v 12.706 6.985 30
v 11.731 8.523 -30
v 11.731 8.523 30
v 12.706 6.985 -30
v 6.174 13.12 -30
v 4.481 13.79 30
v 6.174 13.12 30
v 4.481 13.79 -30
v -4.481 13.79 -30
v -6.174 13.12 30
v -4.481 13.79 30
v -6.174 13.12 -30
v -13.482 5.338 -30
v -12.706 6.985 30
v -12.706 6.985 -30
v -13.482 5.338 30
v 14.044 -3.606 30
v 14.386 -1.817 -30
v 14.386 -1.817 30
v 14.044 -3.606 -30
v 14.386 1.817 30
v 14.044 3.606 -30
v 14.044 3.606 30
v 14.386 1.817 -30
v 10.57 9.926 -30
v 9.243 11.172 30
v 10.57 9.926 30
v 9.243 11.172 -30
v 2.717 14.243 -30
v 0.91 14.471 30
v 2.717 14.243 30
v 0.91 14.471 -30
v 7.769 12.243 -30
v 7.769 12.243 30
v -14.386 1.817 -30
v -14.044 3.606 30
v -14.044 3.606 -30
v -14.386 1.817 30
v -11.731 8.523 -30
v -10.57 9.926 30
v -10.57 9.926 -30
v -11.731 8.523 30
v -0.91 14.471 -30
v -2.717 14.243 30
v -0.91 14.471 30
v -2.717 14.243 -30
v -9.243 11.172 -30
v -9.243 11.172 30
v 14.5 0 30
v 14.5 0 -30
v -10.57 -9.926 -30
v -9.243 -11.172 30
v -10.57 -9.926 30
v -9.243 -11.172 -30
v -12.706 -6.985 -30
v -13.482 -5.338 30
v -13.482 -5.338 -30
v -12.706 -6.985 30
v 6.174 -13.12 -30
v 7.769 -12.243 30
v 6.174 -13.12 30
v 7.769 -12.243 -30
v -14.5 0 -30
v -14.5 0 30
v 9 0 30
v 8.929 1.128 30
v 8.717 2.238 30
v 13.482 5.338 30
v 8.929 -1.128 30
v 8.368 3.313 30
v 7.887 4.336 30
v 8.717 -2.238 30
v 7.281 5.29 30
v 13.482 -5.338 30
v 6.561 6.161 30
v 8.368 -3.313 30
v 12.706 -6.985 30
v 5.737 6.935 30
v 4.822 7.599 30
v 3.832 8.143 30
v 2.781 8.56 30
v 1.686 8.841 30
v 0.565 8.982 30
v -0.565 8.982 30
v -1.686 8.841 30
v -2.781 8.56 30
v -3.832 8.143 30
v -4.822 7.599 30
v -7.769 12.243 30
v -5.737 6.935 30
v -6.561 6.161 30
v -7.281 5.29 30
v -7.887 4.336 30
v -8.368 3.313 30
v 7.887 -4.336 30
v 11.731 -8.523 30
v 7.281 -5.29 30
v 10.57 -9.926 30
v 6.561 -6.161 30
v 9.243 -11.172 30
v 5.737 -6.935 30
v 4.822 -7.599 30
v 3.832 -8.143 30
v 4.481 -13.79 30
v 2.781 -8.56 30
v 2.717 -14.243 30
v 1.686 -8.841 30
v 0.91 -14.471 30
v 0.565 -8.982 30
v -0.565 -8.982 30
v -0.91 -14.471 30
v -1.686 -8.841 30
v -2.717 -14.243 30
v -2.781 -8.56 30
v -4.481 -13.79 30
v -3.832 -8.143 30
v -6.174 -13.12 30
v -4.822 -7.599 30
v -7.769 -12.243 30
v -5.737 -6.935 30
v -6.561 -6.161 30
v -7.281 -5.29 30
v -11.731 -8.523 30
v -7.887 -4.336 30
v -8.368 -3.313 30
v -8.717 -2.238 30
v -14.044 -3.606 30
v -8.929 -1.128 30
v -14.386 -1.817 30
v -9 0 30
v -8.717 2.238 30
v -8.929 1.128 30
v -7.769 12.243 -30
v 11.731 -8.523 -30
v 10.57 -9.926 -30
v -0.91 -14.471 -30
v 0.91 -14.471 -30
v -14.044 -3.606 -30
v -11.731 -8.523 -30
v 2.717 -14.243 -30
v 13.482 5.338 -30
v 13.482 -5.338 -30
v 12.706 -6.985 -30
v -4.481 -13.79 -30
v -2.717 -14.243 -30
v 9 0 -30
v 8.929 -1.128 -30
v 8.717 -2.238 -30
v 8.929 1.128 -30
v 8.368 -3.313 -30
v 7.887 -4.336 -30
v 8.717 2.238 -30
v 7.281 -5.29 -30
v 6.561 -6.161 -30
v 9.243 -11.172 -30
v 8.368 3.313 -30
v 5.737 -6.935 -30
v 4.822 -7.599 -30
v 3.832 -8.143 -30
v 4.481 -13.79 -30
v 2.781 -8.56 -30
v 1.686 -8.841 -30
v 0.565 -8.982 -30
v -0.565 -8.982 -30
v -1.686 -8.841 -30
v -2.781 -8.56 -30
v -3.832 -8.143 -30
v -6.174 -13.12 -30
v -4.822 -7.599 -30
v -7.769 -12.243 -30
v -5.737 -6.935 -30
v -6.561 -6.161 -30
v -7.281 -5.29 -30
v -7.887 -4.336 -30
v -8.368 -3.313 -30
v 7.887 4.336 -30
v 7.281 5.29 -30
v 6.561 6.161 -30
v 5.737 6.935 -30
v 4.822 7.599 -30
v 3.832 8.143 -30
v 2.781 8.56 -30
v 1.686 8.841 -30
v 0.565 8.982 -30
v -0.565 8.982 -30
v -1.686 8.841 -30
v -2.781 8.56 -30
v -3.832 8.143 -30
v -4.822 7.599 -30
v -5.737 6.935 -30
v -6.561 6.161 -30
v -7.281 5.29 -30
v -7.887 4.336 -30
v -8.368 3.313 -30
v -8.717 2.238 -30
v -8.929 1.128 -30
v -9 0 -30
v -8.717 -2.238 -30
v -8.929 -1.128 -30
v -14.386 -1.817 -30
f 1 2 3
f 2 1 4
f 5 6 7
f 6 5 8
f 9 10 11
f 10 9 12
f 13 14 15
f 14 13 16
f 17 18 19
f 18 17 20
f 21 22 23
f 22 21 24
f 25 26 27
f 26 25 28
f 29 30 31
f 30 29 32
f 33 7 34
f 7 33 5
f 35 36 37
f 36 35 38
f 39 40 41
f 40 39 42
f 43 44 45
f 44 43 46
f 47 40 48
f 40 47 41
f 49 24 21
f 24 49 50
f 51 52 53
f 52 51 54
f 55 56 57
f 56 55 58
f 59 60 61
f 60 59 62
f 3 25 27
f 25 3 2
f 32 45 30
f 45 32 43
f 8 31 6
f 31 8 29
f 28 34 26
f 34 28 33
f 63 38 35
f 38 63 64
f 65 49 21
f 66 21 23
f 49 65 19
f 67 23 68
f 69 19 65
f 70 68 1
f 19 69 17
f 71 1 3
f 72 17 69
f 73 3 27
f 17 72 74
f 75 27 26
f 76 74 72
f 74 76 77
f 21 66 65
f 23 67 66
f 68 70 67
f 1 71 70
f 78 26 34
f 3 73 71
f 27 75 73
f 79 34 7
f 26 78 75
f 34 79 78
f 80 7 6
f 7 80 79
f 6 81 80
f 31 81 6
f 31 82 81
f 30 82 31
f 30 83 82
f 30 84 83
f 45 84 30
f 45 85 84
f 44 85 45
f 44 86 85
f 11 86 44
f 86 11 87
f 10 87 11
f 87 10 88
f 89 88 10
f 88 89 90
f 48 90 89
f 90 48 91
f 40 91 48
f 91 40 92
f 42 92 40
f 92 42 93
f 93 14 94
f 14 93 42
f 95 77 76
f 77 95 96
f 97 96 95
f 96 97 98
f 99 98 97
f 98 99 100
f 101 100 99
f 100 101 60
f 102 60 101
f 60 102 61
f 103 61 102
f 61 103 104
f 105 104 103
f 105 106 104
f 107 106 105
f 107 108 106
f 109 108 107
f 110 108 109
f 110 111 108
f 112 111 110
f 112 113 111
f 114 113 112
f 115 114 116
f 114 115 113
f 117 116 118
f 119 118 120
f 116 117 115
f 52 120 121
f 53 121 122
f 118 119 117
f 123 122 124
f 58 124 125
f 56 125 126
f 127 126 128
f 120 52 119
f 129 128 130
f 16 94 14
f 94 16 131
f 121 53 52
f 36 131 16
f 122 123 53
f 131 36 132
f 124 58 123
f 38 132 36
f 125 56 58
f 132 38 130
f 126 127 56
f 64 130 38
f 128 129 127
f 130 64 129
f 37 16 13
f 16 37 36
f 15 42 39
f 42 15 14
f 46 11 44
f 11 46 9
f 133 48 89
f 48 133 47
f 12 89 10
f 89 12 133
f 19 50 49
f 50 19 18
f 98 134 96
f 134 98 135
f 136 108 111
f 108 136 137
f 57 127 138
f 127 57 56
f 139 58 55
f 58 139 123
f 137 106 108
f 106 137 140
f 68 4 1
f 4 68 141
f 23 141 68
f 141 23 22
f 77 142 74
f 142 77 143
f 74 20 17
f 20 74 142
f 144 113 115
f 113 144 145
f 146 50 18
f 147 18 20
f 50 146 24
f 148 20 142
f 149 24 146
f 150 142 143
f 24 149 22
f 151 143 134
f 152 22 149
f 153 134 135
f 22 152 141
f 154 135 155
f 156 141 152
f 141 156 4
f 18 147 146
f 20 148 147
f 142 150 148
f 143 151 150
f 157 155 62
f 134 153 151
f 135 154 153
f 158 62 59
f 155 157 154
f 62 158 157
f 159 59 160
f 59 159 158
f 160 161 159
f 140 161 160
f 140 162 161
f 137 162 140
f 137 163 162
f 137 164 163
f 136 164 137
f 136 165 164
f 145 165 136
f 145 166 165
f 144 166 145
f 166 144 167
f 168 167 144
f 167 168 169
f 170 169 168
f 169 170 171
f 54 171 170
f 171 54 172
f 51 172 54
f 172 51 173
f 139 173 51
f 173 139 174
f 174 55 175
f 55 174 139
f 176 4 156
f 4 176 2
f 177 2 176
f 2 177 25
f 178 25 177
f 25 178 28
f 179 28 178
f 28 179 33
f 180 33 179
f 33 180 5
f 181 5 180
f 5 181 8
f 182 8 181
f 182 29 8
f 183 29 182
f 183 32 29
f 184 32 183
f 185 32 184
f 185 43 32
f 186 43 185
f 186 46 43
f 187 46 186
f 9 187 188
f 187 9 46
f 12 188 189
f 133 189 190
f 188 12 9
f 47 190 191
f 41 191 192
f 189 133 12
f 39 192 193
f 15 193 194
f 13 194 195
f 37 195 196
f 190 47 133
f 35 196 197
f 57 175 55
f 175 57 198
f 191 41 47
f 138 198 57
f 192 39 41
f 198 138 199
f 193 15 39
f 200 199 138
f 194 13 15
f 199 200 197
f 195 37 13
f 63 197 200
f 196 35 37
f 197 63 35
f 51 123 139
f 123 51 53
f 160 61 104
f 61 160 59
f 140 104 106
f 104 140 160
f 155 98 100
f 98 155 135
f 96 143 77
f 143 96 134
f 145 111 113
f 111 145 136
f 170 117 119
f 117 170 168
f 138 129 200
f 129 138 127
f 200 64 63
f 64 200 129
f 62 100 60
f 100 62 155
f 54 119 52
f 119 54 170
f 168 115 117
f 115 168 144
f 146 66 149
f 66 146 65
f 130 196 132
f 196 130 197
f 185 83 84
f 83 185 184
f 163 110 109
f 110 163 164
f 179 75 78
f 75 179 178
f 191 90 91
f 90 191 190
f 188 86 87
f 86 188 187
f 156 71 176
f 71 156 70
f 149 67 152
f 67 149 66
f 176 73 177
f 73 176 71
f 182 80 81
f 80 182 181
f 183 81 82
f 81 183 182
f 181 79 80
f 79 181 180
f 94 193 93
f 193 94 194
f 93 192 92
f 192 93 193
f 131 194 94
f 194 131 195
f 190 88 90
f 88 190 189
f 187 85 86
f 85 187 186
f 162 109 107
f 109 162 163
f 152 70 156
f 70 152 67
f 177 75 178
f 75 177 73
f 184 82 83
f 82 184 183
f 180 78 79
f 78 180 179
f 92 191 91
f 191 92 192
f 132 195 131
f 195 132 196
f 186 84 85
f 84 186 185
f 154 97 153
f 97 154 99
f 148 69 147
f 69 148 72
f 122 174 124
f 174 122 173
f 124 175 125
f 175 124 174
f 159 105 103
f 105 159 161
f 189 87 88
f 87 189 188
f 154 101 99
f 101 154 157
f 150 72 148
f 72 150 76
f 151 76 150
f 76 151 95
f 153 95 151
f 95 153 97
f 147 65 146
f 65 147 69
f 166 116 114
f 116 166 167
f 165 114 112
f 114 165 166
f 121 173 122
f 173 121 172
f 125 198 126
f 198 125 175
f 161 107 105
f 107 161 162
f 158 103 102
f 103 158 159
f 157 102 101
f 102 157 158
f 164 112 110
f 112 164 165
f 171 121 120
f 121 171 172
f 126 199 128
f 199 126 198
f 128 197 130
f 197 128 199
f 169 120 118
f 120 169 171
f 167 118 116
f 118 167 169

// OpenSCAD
$fn = 50;


difference() {
	union() {
		translate(v = [0, 0, -30.0000000000]) {
			cylinder(h = 60, r = 14.5000000000);
		}
	}
	union() {
		translate(v = [0, 0, -100.0000000000]) {
			cylinder(h = 200, r = 9);
		}
	}
}
